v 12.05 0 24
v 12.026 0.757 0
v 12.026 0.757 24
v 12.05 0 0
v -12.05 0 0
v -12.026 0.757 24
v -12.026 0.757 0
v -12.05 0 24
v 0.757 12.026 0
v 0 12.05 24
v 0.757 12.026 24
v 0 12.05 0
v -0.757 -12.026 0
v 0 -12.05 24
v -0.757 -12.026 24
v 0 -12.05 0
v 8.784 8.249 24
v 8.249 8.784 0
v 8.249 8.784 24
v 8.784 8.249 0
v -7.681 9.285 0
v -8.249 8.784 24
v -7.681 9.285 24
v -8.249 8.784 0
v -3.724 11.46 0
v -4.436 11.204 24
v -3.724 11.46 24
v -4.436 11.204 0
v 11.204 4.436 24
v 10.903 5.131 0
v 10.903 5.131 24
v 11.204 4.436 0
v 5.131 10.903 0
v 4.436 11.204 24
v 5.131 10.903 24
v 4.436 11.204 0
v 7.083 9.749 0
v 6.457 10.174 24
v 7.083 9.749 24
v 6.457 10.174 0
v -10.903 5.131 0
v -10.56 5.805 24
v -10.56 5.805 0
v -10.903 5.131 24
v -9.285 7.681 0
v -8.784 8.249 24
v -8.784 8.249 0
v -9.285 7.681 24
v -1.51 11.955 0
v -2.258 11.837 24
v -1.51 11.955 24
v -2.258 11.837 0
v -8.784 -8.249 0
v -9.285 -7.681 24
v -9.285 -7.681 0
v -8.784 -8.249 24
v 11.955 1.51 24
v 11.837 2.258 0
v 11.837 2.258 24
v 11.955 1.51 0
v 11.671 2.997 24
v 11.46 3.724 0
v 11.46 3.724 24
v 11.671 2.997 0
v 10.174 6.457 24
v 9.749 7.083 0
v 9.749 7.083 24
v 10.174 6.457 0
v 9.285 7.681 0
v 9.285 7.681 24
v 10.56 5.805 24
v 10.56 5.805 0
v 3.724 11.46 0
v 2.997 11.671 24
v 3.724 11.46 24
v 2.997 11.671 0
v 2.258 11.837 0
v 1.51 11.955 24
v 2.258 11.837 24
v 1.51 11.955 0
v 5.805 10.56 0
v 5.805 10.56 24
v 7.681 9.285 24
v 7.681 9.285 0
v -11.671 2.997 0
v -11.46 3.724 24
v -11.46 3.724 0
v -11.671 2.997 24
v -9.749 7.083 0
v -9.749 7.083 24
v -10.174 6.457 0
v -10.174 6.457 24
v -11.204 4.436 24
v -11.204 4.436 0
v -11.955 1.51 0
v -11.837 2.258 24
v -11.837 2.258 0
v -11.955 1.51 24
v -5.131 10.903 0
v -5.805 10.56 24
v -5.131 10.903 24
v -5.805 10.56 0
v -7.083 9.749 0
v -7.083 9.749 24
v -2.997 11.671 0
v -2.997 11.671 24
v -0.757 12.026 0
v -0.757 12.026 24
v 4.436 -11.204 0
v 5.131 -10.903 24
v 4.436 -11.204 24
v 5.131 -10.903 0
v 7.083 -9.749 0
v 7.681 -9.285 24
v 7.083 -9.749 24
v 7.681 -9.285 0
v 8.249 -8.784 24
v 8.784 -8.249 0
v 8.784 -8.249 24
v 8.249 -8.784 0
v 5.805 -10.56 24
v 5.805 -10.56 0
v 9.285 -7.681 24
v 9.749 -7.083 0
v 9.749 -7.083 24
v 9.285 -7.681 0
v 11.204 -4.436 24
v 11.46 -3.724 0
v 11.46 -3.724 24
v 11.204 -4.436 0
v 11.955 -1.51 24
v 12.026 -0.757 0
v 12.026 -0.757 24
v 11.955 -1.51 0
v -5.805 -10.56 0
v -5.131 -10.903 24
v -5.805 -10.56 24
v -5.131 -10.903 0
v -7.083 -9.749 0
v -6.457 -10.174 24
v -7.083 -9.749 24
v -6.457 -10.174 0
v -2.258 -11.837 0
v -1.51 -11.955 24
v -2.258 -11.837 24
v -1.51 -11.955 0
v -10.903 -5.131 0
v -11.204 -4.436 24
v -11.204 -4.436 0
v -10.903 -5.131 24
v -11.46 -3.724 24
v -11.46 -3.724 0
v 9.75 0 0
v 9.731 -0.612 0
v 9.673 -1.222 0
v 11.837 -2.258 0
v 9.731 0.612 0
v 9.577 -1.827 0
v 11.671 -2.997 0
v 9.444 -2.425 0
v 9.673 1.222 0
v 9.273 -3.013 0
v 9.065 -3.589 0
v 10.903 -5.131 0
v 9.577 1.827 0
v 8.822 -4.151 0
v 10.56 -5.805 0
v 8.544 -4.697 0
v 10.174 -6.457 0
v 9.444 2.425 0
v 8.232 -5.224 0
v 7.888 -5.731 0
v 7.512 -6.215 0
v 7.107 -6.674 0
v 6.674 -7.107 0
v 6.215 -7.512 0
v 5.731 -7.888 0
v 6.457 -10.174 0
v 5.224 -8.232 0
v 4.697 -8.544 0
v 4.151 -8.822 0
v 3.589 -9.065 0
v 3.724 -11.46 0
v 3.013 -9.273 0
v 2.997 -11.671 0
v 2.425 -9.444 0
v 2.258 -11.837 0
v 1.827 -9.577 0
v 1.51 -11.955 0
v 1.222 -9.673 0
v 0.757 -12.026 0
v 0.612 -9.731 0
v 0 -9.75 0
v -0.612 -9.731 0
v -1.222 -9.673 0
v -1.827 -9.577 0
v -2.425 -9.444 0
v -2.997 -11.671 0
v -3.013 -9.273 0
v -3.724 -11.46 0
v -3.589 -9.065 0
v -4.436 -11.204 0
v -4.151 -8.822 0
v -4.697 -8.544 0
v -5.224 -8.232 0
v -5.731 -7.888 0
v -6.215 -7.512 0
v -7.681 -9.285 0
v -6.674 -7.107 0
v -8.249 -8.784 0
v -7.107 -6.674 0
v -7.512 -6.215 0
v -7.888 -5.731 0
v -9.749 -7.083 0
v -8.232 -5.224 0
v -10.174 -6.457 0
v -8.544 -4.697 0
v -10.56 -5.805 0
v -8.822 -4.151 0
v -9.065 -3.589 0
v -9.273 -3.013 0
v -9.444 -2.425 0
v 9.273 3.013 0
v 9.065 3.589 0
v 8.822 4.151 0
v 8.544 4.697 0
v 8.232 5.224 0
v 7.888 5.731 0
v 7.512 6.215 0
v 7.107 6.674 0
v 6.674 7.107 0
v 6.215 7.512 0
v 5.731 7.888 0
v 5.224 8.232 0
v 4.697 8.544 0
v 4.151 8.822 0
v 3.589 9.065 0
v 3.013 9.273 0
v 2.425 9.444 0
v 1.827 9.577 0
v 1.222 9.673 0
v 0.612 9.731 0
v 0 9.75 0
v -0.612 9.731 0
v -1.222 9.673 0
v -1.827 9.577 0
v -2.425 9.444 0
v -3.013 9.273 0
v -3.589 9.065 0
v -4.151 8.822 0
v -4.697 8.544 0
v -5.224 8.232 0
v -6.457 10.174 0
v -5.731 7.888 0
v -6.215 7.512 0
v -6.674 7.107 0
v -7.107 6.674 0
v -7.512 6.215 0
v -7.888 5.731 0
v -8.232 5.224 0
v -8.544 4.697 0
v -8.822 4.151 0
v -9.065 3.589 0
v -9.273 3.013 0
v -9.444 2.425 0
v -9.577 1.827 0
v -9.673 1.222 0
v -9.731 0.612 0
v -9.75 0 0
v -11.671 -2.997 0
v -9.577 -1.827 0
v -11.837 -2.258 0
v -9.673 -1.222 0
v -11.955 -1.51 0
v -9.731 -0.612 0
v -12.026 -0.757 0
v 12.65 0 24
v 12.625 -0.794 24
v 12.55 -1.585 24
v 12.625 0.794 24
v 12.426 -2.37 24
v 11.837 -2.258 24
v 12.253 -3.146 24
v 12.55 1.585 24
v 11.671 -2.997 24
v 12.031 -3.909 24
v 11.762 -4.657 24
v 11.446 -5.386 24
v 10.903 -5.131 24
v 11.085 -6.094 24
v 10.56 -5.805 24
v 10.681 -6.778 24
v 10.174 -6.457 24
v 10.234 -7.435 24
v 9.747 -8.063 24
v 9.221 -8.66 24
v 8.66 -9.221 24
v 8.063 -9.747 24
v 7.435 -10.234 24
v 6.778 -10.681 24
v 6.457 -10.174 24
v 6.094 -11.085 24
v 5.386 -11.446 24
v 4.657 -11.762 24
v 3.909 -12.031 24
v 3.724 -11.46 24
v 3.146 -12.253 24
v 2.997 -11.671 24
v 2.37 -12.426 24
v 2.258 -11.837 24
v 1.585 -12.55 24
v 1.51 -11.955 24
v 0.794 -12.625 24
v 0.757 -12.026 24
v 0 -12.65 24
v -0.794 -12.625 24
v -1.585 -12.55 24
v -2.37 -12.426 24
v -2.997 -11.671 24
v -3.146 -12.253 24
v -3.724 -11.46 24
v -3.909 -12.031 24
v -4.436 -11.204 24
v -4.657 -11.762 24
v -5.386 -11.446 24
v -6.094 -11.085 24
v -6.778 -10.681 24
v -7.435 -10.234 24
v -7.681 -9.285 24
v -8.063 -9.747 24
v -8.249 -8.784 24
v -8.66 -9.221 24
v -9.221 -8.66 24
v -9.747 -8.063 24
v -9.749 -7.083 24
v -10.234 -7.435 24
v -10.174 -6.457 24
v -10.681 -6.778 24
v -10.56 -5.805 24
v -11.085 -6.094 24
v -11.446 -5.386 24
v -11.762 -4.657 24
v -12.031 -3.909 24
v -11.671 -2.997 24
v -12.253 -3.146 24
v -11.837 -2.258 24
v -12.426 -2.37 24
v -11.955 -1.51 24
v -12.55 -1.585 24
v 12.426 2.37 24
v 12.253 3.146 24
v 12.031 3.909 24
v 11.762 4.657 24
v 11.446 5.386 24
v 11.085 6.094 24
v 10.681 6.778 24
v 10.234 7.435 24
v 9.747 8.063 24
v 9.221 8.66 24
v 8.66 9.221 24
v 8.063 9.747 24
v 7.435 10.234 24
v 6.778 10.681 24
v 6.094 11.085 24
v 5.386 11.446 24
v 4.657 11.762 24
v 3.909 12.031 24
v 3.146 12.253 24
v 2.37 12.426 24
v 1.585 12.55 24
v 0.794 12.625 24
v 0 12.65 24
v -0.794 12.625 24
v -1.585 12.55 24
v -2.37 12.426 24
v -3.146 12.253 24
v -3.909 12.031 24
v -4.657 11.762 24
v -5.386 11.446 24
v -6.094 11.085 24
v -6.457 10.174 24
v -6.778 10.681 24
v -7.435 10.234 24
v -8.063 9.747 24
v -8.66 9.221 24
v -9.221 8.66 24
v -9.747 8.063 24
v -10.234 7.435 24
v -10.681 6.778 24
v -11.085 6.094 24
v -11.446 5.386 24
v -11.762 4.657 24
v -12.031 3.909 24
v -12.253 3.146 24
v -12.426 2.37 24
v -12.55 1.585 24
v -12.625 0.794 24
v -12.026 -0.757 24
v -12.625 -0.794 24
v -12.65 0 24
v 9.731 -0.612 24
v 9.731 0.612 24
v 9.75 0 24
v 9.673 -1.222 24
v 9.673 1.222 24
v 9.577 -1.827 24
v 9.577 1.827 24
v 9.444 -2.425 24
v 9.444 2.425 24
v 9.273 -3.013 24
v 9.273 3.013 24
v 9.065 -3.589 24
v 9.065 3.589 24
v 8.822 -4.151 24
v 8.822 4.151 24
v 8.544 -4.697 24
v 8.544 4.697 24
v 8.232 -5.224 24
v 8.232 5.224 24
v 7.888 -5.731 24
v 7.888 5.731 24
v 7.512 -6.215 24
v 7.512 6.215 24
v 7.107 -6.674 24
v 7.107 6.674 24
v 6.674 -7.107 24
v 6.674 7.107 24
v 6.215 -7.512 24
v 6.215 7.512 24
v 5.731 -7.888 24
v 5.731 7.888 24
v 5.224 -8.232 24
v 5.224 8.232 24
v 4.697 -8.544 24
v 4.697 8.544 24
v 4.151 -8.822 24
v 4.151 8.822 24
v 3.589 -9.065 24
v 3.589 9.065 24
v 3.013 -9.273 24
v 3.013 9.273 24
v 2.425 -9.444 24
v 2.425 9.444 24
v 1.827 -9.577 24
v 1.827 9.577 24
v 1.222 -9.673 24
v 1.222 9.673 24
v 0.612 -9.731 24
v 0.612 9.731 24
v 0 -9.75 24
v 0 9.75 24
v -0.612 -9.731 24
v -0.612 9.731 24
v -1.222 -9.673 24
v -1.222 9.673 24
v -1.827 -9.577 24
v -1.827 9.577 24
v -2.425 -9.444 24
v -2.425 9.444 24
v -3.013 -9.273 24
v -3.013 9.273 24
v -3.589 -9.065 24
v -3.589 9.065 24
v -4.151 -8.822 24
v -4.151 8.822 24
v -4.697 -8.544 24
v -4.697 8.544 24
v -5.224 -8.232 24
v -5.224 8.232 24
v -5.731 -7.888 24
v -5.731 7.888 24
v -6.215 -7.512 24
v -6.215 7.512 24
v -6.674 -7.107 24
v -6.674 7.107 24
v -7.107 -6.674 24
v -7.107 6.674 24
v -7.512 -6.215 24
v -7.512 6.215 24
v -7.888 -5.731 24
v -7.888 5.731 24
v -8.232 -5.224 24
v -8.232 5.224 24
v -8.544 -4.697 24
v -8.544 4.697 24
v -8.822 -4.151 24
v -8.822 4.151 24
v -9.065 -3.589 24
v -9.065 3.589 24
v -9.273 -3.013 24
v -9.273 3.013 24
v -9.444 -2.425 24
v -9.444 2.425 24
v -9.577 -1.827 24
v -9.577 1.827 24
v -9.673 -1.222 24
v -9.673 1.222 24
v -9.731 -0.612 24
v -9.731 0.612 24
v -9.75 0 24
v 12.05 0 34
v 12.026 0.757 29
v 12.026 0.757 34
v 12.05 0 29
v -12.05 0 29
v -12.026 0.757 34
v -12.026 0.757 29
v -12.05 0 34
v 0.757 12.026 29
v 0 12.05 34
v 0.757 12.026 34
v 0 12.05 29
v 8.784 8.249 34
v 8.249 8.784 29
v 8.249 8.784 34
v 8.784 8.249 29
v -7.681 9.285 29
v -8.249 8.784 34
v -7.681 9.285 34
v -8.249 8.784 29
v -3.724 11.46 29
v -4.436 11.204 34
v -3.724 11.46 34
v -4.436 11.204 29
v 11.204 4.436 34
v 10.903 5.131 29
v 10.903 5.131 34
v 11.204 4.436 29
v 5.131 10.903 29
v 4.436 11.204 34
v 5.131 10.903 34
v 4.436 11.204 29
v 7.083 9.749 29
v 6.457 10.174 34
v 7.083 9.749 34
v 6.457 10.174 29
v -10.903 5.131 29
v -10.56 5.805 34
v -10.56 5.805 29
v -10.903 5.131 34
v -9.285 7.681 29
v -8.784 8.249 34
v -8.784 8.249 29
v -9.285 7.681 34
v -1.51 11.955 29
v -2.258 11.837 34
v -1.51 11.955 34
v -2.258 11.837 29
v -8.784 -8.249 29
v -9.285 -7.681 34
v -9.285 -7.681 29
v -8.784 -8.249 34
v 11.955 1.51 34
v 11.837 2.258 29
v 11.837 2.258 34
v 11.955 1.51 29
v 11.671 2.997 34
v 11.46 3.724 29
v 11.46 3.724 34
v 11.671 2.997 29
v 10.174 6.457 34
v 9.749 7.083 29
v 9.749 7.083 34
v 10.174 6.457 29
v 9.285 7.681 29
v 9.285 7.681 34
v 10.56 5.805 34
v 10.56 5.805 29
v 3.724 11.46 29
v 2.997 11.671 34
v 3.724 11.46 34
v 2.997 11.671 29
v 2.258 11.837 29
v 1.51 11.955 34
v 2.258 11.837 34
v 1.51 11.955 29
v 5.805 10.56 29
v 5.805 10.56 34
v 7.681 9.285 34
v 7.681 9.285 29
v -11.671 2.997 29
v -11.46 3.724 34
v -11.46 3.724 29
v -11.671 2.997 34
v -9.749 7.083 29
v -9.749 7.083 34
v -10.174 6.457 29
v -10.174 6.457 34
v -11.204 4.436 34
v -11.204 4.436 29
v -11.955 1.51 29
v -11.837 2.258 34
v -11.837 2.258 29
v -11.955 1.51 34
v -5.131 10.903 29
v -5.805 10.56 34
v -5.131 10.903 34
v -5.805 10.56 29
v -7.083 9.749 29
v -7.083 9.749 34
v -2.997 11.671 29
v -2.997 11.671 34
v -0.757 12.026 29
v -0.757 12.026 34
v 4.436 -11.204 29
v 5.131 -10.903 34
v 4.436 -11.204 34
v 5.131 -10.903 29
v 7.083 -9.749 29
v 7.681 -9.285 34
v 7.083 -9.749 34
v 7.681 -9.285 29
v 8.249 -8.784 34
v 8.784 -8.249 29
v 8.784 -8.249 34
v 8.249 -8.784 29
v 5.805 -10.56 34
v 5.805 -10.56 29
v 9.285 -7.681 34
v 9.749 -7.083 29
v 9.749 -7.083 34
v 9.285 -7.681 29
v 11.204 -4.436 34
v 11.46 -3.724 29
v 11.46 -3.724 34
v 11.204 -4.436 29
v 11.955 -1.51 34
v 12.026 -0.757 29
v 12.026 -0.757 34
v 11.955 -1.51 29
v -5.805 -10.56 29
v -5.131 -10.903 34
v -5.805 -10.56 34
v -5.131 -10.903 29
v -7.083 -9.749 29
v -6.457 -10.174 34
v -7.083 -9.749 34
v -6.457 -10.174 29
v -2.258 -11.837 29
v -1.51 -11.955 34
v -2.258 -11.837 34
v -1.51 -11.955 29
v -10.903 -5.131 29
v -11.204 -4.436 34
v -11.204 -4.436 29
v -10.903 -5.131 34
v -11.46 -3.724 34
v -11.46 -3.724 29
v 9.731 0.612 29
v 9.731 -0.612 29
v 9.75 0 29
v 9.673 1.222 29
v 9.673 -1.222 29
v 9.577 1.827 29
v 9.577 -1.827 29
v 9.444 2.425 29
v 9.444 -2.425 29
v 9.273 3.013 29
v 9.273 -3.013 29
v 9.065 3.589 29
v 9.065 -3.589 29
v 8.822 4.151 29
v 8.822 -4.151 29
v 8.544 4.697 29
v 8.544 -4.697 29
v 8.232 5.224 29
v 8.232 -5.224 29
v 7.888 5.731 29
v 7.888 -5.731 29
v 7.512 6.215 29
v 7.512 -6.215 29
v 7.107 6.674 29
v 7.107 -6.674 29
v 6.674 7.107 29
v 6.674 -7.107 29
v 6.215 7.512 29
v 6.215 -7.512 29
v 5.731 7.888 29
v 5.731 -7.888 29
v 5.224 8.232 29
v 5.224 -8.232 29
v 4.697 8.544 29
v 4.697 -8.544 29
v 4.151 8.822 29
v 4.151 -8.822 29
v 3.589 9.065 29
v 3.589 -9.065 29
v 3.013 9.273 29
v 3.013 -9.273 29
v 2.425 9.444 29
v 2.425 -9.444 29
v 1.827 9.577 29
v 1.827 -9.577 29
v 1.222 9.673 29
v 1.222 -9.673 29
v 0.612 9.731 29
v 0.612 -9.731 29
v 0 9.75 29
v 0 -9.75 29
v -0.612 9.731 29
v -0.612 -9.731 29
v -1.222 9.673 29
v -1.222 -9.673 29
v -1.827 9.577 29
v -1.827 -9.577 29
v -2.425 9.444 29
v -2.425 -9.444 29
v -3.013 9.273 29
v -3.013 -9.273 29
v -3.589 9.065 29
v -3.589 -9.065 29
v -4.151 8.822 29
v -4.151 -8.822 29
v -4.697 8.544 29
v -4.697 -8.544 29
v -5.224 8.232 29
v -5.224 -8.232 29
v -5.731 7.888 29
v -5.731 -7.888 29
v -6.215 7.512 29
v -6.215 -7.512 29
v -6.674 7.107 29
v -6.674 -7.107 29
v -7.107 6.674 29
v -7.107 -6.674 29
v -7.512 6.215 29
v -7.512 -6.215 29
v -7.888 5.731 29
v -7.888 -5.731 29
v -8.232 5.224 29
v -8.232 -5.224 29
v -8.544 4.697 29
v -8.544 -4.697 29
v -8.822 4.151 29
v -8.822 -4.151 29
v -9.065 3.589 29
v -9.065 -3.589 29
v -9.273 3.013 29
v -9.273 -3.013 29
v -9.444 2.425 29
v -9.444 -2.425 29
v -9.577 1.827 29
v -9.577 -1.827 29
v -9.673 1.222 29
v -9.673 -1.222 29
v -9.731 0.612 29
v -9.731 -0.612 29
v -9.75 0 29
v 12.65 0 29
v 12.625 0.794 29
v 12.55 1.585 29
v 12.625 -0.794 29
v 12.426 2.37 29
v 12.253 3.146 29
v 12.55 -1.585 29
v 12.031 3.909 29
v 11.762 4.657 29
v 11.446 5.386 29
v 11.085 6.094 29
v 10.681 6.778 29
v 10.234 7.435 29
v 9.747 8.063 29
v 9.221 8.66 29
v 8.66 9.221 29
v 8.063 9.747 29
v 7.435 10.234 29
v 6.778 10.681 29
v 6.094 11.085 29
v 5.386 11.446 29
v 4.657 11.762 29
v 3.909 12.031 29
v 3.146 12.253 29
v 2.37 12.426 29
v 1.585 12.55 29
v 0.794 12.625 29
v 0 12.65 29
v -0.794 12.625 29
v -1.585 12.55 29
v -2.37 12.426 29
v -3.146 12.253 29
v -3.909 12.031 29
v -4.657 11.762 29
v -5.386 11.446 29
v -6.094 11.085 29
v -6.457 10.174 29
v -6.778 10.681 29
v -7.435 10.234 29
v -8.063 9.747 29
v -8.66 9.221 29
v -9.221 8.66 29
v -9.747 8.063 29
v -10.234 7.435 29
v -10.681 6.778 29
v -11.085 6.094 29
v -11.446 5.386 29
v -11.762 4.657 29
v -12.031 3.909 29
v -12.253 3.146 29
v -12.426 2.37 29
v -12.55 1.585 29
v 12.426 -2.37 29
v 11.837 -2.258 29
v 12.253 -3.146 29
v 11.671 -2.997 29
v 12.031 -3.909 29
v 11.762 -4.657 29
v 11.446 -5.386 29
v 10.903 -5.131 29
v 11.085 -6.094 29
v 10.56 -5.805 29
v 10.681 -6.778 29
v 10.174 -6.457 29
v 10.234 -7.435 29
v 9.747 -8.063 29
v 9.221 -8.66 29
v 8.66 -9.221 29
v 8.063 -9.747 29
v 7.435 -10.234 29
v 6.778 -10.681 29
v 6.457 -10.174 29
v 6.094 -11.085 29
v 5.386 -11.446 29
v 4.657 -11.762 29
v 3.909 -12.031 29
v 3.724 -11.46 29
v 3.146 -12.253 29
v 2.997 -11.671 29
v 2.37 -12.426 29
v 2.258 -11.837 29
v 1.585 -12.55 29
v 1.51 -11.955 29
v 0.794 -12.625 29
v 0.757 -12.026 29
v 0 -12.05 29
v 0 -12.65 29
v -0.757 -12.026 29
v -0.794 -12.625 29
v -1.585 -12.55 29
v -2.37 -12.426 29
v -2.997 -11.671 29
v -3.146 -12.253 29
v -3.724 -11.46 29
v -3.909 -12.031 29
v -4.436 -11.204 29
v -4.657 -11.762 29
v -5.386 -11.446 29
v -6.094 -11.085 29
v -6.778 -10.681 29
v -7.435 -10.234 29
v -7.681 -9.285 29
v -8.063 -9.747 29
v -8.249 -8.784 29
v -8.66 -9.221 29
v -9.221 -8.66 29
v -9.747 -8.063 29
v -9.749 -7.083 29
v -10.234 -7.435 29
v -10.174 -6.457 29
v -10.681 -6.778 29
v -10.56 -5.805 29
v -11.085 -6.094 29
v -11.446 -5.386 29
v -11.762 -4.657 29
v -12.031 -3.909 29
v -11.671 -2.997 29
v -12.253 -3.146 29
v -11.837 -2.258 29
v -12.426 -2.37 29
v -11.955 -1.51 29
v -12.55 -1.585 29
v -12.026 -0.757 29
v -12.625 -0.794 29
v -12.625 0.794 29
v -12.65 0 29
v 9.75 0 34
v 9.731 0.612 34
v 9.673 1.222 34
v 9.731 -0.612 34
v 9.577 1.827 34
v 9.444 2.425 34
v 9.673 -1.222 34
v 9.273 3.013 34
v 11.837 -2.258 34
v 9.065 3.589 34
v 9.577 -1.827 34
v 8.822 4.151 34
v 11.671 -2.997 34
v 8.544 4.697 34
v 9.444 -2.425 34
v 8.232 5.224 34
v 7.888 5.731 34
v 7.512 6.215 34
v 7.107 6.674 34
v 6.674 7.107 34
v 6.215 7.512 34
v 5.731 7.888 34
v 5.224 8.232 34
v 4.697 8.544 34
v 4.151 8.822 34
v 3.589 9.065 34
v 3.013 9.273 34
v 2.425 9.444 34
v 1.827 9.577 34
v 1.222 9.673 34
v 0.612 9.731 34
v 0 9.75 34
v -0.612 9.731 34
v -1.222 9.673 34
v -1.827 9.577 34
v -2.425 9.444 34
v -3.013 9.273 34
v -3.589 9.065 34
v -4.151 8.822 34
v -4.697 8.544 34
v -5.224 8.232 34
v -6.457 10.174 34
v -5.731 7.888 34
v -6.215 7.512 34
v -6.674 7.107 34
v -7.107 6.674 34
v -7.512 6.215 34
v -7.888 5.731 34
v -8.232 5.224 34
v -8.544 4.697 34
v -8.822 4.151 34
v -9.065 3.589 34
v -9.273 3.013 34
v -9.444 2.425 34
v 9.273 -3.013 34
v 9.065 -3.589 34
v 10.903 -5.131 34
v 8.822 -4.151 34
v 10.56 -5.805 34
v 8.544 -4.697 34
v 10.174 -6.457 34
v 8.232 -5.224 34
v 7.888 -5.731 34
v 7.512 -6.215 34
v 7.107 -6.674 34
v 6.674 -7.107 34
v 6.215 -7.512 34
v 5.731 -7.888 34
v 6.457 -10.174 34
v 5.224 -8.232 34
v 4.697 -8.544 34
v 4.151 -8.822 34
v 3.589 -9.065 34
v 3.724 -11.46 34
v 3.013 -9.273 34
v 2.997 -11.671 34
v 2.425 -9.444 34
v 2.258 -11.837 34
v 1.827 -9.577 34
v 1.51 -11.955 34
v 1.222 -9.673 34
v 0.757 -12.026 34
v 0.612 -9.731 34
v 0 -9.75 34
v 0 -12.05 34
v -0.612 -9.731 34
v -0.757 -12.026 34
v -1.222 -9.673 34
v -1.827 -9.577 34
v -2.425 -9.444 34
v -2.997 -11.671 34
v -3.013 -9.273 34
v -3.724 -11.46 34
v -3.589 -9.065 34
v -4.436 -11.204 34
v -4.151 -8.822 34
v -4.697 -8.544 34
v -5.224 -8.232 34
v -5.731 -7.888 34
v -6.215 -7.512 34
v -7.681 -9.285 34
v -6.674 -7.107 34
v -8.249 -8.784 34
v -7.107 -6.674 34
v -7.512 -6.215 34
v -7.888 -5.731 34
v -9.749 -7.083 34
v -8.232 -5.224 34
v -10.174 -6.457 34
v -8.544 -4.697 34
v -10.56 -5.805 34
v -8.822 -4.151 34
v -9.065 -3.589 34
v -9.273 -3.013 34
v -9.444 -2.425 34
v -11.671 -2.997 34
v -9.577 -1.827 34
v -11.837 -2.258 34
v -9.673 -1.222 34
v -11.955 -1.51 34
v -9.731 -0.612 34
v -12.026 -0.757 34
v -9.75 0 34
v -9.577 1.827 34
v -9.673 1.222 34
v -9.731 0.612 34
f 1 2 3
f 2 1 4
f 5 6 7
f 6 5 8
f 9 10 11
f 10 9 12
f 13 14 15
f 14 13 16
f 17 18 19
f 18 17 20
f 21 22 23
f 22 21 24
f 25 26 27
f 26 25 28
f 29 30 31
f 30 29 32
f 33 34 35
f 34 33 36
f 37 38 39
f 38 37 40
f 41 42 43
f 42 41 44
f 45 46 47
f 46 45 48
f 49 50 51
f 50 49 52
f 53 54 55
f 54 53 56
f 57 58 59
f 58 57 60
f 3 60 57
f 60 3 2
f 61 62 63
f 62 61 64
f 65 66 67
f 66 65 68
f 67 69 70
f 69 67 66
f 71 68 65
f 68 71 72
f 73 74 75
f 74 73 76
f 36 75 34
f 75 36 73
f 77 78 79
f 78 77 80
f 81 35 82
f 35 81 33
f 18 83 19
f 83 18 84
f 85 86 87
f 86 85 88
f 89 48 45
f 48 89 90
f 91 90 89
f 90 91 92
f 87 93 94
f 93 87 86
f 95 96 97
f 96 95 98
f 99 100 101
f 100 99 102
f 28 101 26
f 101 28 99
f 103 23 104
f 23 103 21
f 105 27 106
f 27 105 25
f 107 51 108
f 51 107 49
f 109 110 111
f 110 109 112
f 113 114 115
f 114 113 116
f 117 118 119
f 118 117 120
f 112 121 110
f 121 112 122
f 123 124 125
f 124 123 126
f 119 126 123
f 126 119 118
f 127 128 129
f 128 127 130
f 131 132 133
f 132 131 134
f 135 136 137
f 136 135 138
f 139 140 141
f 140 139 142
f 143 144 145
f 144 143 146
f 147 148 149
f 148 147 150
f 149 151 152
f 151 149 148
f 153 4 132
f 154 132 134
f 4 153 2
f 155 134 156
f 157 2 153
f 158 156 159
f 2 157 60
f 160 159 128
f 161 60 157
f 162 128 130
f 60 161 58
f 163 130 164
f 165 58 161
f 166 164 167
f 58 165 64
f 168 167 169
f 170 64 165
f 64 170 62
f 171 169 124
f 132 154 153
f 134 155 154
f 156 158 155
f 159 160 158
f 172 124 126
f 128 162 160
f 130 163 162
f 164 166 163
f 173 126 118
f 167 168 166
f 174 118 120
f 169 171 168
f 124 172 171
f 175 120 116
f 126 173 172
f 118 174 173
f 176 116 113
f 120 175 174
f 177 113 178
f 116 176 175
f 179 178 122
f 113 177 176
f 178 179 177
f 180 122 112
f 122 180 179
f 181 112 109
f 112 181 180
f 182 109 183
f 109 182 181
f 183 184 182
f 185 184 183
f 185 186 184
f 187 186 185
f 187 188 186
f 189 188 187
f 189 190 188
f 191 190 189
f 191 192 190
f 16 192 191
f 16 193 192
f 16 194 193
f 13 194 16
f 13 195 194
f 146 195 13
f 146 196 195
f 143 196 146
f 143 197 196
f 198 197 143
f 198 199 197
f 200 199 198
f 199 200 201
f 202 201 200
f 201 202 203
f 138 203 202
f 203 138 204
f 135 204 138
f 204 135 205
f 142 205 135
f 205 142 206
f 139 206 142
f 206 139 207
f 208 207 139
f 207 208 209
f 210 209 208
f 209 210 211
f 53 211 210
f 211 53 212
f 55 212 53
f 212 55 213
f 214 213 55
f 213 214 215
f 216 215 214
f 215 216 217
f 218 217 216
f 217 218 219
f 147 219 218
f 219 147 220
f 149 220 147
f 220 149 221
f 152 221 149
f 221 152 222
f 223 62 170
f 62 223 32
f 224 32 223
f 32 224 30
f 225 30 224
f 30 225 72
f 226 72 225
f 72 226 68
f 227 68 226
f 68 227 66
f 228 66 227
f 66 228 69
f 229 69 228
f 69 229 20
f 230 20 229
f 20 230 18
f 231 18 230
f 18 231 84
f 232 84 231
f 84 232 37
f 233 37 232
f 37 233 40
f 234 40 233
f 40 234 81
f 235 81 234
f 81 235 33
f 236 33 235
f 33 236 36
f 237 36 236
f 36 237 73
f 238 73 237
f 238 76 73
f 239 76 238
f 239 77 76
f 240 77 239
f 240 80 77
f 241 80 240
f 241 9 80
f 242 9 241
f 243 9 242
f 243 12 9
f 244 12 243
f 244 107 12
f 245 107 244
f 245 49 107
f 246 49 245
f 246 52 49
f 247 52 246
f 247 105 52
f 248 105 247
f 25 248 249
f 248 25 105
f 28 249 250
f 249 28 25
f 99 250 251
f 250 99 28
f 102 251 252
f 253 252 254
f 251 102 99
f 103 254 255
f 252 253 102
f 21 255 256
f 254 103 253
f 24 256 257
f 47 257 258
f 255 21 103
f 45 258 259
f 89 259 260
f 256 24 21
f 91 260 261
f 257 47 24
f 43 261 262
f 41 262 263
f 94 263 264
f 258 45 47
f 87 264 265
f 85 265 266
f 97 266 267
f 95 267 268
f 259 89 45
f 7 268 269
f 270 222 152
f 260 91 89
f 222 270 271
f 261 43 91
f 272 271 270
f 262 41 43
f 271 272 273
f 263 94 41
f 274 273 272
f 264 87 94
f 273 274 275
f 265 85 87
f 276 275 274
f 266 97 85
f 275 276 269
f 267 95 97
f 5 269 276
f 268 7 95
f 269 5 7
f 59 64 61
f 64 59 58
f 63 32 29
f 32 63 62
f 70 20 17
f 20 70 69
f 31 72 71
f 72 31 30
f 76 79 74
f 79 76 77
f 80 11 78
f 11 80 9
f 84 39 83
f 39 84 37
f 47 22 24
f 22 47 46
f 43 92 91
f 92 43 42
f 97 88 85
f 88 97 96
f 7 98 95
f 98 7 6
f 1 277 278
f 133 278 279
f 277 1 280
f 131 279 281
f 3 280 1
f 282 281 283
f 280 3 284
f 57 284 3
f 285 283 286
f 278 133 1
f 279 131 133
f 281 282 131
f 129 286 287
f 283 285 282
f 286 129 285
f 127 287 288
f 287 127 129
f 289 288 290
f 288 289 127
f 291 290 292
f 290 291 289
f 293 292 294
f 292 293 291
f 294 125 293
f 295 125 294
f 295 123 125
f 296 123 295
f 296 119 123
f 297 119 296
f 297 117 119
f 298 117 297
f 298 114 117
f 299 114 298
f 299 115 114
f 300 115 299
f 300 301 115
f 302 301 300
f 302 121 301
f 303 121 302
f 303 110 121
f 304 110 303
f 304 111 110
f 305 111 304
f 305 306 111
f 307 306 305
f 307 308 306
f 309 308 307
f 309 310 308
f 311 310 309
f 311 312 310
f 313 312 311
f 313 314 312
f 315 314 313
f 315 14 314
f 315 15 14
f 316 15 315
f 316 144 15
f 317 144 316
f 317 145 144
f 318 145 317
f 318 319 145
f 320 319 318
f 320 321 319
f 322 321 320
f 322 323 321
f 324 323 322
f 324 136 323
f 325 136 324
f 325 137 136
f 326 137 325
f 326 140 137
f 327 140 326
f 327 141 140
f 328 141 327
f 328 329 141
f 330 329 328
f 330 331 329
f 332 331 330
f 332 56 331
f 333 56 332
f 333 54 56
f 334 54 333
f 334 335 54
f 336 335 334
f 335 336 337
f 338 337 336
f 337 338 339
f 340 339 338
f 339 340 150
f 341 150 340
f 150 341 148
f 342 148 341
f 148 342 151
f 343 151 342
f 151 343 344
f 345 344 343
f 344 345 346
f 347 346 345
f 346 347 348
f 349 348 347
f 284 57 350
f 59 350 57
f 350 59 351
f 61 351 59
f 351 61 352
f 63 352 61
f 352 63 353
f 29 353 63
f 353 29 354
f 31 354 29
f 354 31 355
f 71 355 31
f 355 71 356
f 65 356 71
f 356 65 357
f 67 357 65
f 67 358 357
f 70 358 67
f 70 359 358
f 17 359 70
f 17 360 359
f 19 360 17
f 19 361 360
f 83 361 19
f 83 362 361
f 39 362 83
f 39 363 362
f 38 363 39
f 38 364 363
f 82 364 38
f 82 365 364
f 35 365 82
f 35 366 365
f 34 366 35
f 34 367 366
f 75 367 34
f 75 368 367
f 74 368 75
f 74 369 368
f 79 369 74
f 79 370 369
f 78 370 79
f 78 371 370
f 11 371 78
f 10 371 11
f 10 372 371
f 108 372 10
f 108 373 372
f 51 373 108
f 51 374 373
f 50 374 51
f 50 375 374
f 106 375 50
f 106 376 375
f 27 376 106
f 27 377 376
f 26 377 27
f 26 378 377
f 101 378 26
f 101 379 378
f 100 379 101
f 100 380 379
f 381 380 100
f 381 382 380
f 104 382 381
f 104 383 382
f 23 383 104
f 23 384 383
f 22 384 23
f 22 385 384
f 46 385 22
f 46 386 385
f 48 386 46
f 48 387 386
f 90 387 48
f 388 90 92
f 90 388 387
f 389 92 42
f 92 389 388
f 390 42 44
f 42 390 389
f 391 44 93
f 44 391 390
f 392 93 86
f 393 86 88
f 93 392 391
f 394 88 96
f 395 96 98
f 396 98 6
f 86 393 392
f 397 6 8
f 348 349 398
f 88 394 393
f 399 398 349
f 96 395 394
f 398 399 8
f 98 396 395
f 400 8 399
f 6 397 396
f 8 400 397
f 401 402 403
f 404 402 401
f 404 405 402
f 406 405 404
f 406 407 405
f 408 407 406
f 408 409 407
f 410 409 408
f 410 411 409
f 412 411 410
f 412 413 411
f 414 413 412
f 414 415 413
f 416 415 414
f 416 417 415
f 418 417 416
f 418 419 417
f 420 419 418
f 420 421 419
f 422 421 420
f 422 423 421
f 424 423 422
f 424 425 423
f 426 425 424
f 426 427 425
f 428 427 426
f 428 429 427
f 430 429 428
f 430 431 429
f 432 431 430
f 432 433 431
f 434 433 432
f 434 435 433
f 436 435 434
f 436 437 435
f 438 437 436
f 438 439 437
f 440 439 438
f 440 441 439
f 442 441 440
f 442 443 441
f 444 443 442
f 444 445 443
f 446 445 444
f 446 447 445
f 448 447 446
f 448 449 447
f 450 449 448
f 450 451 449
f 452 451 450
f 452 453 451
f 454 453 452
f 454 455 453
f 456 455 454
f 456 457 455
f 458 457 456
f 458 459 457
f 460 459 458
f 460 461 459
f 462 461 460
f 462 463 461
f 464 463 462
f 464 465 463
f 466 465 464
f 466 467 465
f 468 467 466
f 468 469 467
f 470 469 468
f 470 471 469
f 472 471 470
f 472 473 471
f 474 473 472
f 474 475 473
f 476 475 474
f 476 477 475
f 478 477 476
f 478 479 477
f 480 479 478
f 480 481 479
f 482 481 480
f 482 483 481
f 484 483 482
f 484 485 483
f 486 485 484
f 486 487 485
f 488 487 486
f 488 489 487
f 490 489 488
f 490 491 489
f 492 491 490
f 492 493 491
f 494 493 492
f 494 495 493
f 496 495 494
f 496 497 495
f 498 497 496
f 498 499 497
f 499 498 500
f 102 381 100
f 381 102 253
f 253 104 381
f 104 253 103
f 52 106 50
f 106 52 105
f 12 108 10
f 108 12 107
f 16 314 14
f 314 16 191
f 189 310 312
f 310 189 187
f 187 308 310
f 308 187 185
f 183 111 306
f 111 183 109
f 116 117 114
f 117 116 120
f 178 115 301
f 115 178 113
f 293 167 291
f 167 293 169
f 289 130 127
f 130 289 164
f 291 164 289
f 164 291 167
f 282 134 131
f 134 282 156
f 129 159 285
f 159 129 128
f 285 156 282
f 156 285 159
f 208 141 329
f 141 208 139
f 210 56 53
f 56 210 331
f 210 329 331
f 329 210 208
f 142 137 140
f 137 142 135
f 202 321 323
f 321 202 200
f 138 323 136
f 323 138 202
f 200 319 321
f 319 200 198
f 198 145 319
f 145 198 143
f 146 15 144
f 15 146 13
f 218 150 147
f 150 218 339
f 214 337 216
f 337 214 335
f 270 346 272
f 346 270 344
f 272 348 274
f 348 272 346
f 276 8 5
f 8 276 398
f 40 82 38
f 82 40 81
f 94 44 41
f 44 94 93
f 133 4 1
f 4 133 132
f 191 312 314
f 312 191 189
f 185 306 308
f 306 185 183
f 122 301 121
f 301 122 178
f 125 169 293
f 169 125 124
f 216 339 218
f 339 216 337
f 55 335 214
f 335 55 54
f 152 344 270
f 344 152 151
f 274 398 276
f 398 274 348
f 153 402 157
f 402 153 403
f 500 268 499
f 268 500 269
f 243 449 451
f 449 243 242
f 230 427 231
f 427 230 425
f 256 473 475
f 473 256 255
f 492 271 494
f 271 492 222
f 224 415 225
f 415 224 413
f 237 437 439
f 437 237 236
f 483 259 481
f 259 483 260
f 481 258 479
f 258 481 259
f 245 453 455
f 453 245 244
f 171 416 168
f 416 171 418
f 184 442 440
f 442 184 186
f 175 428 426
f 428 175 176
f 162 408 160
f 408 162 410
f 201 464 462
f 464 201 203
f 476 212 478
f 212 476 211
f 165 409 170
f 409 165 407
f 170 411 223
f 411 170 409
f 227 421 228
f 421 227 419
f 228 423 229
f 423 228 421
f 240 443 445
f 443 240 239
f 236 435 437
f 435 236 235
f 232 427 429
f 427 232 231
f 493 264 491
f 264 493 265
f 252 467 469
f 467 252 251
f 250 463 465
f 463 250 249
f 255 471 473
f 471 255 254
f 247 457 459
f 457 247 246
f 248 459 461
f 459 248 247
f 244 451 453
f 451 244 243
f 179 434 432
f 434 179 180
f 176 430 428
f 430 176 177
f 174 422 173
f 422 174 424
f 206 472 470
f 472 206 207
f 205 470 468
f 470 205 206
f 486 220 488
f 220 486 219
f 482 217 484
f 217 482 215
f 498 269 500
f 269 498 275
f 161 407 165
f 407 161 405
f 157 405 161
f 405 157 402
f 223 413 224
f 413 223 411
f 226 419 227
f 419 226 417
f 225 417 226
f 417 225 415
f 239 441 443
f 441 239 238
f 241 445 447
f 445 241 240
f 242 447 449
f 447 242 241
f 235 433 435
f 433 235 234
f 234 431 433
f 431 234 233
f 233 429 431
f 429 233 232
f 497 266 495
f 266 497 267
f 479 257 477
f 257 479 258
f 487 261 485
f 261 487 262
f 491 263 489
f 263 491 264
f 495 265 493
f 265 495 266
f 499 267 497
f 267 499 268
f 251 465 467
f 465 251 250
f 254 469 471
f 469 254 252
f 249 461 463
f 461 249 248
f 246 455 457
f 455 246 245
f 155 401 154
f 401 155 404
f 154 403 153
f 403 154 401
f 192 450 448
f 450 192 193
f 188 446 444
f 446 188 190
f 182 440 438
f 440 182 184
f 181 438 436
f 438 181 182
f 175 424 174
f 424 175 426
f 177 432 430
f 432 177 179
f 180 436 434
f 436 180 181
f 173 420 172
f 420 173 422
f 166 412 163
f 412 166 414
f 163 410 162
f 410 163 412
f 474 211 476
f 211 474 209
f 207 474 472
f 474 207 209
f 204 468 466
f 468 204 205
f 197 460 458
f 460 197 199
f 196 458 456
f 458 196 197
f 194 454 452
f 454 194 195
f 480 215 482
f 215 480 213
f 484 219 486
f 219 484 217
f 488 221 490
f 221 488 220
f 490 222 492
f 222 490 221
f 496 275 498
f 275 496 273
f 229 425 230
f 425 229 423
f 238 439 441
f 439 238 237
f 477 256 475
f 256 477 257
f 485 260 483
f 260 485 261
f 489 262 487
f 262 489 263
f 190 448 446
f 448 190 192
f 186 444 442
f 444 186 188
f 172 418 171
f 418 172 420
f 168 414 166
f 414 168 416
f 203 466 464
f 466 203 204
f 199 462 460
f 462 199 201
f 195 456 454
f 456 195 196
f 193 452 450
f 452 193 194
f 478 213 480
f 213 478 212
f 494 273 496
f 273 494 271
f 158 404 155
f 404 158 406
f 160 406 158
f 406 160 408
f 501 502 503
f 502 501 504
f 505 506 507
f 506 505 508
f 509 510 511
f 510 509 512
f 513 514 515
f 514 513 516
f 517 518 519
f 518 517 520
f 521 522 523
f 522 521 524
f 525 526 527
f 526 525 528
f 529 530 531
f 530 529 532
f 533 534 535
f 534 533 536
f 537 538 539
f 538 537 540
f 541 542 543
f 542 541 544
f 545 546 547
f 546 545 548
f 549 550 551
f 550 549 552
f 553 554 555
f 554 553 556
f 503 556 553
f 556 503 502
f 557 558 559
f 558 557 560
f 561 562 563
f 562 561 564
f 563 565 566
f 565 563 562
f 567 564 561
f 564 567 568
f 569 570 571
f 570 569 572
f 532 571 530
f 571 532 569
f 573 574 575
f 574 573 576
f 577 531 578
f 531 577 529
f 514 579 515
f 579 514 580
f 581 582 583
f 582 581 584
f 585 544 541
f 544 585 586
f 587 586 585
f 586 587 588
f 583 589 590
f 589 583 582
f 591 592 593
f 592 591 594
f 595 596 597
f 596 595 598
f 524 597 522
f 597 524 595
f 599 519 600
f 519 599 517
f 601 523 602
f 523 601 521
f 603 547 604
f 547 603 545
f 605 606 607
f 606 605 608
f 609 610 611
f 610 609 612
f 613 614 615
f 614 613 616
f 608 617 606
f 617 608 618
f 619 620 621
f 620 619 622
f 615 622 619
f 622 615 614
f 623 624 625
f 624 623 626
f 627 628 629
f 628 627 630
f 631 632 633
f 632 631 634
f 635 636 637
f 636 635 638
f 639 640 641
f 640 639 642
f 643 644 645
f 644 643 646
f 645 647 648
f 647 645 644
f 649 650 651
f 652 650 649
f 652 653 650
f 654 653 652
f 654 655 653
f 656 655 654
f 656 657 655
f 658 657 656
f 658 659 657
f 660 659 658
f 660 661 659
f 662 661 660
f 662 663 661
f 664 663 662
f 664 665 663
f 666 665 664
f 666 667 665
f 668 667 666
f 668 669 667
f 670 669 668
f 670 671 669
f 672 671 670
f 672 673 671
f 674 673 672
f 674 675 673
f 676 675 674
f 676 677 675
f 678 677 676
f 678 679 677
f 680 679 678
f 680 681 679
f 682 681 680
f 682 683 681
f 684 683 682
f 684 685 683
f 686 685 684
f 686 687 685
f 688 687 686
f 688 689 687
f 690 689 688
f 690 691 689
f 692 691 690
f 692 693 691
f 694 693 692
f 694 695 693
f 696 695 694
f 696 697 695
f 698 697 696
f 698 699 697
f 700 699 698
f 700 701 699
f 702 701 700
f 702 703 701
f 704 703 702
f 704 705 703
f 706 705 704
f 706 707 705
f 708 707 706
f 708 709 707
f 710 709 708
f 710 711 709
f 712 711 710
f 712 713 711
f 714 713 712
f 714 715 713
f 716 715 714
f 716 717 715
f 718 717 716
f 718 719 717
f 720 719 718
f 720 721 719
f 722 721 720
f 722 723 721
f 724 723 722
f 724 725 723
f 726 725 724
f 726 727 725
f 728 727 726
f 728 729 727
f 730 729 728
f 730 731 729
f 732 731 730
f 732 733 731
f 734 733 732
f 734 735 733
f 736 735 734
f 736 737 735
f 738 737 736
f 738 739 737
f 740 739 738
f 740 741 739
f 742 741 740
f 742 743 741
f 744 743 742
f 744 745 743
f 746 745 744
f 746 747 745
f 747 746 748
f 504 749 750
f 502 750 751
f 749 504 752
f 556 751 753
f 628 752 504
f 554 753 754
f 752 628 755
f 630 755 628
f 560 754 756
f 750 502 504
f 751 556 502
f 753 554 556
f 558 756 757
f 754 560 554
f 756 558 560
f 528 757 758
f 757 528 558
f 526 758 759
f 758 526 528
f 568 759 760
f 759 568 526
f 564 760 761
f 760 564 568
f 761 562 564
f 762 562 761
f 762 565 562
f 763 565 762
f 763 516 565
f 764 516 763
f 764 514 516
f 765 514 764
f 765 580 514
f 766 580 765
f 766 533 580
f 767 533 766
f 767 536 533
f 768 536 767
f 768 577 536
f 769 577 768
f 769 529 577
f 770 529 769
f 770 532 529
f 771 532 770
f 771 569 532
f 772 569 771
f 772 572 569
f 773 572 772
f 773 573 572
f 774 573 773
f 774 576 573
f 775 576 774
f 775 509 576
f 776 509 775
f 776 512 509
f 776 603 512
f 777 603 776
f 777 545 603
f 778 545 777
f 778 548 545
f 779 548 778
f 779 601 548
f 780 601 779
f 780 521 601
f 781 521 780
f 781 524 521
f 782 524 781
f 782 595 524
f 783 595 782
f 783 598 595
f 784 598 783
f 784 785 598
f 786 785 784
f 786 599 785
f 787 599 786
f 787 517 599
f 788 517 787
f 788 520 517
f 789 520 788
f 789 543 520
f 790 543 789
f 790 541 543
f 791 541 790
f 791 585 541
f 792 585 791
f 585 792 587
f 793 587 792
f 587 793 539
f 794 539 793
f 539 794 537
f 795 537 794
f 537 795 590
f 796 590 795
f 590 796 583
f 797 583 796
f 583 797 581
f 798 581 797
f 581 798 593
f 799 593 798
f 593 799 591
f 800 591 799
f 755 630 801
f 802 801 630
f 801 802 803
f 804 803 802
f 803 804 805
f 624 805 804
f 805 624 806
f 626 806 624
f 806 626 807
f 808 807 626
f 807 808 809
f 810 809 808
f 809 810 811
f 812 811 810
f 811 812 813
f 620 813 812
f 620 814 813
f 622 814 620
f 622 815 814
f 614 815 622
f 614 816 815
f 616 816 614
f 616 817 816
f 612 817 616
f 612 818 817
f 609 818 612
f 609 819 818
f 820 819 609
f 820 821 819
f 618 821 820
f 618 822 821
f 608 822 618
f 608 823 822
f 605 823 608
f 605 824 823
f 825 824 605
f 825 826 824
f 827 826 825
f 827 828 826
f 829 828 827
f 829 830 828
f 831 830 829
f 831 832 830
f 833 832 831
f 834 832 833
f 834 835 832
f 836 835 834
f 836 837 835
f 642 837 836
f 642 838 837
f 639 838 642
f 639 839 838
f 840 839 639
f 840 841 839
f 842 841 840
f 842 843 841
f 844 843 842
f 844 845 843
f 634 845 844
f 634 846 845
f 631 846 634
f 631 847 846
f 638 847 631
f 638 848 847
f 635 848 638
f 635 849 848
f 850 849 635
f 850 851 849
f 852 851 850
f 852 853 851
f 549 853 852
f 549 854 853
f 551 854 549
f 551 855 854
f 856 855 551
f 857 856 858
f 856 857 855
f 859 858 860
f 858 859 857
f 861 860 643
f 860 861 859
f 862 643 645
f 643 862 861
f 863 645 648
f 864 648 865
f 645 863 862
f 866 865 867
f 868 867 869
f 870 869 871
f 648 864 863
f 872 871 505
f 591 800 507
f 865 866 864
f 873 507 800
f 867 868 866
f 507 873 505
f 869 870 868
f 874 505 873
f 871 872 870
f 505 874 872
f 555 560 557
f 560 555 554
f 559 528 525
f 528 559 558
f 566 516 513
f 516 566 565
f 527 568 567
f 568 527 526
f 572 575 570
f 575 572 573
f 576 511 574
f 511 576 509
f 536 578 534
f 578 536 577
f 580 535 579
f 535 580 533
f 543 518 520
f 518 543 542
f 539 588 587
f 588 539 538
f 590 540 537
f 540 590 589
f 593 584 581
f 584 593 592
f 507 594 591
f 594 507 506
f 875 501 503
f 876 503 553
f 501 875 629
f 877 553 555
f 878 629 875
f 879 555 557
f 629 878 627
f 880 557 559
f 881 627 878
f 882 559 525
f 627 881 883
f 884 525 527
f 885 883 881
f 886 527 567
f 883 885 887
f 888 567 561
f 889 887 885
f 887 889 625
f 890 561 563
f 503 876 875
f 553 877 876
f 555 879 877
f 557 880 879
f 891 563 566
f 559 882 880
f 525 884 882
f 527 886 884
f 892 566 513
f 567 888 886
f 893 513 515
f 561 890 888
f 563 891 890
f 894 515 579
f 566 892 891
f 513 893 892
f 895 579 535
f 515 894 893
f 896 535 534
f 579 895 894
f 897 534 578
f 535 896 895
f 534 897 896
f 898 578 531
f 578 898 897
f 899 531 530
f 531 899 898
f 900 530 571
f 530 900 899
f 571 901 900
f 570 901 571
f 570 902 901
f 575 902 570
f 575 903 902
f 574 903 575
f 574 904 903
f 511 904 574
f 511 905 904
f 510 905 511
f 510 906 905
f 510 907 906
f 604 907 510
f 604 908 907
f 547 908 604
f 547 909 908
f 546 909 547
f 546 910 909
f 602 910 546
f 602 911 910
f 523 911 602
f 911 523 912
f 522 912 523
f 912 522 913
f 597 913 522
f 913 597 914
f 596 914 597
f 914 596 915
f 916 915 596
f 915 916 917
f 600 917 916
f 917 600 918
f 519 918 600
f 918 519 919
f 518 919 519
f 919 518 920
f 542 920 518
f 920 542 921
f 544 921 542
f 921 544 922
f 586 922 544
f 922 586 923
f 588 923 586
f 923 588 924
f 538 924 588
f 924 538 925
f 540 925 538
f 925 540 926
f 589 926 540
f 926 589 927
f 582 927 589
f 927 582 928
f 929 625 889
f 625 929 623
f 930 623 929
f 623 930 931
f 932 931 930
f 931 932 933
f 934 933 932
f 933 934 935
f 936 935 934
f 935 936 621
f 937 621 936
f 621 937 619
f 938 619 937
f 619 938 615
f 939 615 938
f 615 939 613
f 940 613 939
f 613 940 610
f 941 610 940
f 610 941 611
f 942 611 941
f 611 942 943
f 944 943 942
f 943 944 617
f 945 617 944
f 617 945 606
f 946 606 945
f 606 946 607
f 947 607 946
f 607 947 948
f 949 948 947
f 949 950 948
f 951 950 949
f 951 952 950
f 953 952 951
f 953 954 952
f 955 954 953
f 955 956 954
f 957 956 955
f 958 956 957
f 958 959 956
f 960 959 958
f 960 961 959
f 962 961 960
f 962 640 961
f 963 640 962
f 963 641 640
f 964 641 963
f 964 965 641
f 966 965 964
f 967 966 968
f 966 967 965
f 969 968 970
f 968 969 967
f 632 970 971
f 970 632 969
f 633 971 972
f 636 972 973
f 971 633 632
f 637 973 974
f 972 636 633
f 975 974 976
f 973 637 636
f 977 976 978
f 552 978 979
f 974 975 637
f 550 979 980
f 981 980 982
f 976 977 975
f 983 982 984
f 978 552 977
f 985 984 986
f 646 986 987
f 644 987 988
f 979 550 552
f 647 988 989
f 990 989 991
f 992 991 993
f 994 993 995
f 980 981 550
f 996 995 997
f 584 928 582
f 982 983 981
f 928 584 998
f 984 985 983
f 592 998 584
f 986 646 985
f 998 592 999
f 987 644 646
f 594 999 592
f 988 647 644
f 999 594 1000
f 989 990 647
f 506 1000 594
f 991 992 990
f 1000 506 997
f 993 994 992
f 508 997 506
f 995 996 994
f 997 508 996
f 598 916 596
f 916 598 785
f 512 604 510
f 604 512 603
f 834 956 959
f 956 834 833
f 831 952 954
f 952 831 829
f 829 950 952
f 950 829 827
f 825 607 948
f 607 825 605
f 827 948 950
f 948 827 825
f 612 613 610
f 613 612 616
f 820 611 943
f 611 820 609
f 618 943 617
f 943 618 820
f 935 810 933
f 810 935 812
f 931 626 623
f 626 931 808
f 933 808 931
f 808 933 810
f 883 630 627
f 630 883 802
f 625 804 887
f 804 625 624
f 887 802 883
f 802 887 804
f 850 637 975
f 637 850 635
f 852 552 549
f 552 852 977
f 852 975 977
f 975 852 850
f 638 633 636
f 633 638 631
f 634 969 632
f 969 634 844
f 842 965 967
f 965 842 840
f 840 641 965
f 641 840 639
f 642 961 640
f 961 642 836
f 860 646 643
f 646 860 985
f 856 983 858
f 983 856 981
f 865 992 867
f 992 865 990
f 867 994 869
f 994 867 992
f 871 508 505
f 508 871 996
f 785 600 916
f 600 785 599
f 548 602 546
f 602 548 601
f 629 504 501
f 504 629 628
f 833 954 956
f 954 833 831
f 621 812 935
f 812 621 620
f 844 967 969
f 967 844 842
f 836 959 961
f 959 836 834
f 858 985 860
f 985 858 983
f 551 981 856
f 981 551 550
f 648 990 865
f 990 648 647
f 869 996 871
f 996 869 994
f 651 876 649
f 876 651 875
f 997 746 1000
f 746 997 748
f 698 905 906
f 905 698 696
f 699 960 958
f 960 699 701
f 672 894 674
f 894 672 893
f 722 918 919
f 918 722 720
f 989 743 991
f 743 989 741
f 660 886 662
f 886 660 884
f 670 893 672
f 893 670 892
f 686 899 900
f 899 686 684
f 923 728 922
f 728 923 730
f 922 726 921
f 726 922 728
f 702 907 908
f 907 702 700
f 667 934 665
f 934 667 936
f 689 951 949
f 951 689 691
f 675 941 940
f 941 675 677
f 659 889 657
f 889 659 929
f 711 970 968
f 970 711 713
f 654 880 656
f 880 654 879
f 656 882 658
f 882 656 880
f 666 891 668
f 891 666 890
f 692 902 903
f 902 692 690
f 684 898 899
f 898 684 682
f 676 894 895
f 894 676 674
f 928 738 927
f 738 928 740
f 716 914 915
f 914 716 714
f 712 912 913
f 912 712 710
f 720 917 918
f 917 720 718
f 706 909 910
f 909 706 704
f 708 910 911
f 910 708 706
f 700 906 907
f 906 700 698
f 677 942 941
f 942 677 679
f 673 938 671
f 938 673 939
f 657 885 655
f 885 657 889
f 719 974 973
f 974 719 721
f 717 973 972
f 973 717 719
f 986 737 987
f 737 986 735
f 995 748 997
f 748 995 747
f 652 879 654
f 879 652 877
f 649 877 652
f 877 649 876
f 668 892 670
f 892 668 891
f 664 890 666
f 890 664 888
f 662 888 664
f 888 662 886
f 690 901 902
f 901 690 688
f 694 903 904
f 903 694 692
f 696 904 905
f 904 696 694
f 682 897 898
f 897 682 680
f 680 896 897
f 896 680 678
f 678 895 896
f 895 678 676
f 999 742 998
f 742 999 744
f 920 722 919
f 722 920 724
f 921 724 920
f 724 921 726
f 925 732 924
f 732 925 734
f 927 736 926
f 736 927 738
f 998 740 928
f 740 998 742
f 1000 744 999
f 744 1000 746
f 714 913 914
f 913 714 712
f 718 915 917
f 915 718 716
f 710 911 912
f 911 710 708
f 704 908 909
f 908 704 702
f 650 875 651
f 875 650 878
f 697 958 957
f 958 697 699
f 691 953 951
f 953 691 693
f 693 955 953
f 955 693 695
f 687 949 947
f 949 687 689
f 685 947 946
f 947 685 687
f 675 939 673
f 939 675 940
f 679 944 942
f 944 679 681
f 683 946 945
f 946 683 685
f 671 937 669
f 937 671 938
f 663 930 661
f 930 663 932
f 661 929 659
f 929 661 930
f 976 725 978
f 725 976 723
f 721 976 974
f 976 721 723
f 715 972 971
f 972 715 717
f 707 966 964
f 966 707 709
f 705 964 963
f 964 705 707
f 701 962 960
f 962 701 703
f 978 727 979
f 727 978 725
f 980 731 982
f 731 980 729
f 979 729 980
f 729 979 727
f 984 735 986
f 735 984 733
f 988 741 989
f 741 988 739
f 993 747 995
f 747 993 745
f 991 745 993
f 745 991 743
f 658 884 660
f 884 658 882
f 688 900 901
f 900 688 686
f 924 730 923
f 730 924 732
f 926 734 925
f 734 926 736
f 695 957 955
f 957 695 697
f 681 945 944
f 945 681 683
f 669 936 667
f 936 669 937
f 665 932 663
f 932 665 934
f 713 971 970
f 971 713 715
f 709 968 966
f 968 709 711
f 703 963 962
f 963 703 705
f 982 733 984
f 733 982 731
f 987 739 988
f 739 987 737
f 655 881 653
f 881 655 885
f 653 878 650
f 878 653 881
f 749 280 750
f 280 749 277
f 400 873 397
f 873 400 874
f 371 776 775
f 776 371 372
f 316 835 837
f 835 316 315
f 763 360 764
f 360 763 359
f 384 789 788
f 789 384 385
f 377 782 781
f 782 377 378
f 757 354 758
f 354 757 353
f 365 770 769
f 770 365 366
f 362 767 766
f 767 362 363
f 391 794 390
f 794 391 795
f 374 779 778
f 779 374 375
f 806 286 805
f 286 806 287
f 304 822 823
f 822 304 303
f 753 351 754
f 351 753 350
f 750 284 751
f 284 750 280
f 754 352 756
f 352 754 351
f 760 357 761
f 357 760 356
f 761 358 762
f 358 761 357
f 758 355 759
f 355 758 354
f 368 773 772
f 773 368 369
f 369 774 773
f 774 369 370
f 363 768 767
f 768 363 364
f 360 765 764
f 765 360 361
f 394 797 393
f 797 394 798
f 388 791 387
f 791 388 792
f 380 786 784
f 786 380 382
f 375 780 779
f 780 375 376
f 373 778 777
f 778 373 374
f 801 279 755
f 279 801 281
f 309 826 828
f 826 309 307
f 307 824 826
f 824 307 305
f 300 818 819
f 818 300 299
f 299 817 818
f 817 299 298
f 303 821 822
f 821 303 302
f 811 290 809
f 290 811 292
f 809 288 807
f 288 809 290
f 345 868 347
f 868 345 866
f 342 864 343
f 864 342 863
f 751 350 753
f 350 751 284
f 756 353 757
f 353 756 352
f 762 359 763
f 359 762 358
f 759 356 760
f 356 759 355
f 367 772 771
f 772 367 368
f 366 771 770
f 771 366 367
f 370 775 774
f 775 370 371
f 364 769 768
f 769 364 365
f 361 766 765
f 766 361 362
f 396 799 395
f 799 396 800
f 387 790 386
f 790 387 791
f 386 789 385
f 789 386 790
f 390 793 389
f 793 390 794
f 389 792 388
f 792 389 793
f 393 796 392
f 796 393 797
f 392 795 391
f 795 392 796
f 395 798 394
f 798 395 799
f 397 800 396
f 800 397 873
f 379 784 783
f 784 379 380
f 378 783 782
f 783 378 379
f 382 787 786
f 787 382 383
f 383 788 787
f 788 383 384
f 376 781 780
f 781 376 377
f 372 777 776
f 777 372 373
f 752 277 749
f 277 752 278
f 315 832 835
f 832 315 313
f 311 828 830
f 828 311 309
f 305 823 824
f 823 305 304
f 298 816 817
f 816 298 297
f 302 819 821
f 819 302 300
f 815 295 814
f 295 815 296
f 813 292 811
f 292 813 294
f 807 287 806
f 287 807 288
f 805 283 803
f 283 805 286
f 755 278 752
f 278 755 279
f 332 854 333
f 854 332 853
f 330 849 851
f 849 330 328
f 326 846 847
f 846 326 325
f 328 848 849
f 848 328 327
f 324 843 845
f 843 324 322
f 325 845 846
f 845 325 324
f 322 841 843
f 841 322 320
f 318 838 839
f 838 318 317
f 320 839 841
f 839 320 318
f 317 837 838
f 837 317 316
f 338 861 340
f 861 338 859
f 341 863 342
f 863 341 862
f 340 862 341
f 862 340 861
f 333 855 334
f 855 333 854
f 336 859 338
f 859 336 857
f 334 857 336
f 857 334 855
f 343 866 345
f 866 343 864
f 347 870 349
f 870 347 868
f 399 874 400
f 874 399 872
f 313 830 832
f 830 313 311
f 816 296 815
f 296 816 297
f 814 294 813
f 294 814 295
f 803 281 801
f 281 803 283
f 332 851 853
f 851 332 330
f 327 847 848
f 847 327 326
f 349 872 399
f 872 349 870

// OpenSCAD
/*
     Cone and Coupler generator by concretedog
All dimensions in mm
CC BY-NC-SA 3.0

*/

nose_length=55;         //Length of the nosecone (not including the shoulder)
shoulder_length=5;     //Length of the shoulder 
coupler_radius=24.1/2;	 //Radius of the coupling ring also shoulder radius of nosecone that sits inside the tube
body_ext_radius=25.3/2;	 //Radius of the outside of the body tube 
coupler_length=50;      //Length of the coupling tube
$fn = 100;              //Number of fragments modeled around the circle-  
                         //-the higher the $fn the smoother the surface but
                         //-takes longer to render. 100 is fine for most!

 
/*      
union(){
    
    
  	difference() {
		cylinder(h=shoulder_length, r1=coupler_radius, r2=coupler_radius);
     
      cylinder(60,19.5/2,19.5/2);

    }
    
	translate ([0,0,shoulder_length]) scale([1,1,nose_length/body_ext_radius]) 
    difference() {
     
		sphere(r=body_ext_radius);
           cylinder(60,19.5/2,19.5/2);
		translate ([0,0,-body_ext_radius*0.5]) cube(size=[body_ext_radius*2,body_ext_radius*2,body_ext_radius],center=true);
	}
    
}

//##### Coupler code section #######

*/
/*
translate([50,50,0]) { //translate just moves coupler away from nosecone...need to move it more if doing a big nosecone!!
    difference() {
        cylinder(h=coupler_length, r1=coupler_radius, r2=coupler_radius);
        cylinder(h=coupler_length, r1=coupler_radius-4, r2=coupler_radius-4);
    }
}
*/

union(){
    
difference(){
    cylinder(24,coupler_radius,coupler_radius);
    cylinder(24,19.5/2,19.5/2);
}
translate([0,0,24])cylinder(5,body_ext_radius,body_ext_radius);

translate([0,0,29])difference(){
 cylinder(5,coupler_radius,coupler_radius);
    cylinder(24,19.5/2,19.5/2);
}
}
